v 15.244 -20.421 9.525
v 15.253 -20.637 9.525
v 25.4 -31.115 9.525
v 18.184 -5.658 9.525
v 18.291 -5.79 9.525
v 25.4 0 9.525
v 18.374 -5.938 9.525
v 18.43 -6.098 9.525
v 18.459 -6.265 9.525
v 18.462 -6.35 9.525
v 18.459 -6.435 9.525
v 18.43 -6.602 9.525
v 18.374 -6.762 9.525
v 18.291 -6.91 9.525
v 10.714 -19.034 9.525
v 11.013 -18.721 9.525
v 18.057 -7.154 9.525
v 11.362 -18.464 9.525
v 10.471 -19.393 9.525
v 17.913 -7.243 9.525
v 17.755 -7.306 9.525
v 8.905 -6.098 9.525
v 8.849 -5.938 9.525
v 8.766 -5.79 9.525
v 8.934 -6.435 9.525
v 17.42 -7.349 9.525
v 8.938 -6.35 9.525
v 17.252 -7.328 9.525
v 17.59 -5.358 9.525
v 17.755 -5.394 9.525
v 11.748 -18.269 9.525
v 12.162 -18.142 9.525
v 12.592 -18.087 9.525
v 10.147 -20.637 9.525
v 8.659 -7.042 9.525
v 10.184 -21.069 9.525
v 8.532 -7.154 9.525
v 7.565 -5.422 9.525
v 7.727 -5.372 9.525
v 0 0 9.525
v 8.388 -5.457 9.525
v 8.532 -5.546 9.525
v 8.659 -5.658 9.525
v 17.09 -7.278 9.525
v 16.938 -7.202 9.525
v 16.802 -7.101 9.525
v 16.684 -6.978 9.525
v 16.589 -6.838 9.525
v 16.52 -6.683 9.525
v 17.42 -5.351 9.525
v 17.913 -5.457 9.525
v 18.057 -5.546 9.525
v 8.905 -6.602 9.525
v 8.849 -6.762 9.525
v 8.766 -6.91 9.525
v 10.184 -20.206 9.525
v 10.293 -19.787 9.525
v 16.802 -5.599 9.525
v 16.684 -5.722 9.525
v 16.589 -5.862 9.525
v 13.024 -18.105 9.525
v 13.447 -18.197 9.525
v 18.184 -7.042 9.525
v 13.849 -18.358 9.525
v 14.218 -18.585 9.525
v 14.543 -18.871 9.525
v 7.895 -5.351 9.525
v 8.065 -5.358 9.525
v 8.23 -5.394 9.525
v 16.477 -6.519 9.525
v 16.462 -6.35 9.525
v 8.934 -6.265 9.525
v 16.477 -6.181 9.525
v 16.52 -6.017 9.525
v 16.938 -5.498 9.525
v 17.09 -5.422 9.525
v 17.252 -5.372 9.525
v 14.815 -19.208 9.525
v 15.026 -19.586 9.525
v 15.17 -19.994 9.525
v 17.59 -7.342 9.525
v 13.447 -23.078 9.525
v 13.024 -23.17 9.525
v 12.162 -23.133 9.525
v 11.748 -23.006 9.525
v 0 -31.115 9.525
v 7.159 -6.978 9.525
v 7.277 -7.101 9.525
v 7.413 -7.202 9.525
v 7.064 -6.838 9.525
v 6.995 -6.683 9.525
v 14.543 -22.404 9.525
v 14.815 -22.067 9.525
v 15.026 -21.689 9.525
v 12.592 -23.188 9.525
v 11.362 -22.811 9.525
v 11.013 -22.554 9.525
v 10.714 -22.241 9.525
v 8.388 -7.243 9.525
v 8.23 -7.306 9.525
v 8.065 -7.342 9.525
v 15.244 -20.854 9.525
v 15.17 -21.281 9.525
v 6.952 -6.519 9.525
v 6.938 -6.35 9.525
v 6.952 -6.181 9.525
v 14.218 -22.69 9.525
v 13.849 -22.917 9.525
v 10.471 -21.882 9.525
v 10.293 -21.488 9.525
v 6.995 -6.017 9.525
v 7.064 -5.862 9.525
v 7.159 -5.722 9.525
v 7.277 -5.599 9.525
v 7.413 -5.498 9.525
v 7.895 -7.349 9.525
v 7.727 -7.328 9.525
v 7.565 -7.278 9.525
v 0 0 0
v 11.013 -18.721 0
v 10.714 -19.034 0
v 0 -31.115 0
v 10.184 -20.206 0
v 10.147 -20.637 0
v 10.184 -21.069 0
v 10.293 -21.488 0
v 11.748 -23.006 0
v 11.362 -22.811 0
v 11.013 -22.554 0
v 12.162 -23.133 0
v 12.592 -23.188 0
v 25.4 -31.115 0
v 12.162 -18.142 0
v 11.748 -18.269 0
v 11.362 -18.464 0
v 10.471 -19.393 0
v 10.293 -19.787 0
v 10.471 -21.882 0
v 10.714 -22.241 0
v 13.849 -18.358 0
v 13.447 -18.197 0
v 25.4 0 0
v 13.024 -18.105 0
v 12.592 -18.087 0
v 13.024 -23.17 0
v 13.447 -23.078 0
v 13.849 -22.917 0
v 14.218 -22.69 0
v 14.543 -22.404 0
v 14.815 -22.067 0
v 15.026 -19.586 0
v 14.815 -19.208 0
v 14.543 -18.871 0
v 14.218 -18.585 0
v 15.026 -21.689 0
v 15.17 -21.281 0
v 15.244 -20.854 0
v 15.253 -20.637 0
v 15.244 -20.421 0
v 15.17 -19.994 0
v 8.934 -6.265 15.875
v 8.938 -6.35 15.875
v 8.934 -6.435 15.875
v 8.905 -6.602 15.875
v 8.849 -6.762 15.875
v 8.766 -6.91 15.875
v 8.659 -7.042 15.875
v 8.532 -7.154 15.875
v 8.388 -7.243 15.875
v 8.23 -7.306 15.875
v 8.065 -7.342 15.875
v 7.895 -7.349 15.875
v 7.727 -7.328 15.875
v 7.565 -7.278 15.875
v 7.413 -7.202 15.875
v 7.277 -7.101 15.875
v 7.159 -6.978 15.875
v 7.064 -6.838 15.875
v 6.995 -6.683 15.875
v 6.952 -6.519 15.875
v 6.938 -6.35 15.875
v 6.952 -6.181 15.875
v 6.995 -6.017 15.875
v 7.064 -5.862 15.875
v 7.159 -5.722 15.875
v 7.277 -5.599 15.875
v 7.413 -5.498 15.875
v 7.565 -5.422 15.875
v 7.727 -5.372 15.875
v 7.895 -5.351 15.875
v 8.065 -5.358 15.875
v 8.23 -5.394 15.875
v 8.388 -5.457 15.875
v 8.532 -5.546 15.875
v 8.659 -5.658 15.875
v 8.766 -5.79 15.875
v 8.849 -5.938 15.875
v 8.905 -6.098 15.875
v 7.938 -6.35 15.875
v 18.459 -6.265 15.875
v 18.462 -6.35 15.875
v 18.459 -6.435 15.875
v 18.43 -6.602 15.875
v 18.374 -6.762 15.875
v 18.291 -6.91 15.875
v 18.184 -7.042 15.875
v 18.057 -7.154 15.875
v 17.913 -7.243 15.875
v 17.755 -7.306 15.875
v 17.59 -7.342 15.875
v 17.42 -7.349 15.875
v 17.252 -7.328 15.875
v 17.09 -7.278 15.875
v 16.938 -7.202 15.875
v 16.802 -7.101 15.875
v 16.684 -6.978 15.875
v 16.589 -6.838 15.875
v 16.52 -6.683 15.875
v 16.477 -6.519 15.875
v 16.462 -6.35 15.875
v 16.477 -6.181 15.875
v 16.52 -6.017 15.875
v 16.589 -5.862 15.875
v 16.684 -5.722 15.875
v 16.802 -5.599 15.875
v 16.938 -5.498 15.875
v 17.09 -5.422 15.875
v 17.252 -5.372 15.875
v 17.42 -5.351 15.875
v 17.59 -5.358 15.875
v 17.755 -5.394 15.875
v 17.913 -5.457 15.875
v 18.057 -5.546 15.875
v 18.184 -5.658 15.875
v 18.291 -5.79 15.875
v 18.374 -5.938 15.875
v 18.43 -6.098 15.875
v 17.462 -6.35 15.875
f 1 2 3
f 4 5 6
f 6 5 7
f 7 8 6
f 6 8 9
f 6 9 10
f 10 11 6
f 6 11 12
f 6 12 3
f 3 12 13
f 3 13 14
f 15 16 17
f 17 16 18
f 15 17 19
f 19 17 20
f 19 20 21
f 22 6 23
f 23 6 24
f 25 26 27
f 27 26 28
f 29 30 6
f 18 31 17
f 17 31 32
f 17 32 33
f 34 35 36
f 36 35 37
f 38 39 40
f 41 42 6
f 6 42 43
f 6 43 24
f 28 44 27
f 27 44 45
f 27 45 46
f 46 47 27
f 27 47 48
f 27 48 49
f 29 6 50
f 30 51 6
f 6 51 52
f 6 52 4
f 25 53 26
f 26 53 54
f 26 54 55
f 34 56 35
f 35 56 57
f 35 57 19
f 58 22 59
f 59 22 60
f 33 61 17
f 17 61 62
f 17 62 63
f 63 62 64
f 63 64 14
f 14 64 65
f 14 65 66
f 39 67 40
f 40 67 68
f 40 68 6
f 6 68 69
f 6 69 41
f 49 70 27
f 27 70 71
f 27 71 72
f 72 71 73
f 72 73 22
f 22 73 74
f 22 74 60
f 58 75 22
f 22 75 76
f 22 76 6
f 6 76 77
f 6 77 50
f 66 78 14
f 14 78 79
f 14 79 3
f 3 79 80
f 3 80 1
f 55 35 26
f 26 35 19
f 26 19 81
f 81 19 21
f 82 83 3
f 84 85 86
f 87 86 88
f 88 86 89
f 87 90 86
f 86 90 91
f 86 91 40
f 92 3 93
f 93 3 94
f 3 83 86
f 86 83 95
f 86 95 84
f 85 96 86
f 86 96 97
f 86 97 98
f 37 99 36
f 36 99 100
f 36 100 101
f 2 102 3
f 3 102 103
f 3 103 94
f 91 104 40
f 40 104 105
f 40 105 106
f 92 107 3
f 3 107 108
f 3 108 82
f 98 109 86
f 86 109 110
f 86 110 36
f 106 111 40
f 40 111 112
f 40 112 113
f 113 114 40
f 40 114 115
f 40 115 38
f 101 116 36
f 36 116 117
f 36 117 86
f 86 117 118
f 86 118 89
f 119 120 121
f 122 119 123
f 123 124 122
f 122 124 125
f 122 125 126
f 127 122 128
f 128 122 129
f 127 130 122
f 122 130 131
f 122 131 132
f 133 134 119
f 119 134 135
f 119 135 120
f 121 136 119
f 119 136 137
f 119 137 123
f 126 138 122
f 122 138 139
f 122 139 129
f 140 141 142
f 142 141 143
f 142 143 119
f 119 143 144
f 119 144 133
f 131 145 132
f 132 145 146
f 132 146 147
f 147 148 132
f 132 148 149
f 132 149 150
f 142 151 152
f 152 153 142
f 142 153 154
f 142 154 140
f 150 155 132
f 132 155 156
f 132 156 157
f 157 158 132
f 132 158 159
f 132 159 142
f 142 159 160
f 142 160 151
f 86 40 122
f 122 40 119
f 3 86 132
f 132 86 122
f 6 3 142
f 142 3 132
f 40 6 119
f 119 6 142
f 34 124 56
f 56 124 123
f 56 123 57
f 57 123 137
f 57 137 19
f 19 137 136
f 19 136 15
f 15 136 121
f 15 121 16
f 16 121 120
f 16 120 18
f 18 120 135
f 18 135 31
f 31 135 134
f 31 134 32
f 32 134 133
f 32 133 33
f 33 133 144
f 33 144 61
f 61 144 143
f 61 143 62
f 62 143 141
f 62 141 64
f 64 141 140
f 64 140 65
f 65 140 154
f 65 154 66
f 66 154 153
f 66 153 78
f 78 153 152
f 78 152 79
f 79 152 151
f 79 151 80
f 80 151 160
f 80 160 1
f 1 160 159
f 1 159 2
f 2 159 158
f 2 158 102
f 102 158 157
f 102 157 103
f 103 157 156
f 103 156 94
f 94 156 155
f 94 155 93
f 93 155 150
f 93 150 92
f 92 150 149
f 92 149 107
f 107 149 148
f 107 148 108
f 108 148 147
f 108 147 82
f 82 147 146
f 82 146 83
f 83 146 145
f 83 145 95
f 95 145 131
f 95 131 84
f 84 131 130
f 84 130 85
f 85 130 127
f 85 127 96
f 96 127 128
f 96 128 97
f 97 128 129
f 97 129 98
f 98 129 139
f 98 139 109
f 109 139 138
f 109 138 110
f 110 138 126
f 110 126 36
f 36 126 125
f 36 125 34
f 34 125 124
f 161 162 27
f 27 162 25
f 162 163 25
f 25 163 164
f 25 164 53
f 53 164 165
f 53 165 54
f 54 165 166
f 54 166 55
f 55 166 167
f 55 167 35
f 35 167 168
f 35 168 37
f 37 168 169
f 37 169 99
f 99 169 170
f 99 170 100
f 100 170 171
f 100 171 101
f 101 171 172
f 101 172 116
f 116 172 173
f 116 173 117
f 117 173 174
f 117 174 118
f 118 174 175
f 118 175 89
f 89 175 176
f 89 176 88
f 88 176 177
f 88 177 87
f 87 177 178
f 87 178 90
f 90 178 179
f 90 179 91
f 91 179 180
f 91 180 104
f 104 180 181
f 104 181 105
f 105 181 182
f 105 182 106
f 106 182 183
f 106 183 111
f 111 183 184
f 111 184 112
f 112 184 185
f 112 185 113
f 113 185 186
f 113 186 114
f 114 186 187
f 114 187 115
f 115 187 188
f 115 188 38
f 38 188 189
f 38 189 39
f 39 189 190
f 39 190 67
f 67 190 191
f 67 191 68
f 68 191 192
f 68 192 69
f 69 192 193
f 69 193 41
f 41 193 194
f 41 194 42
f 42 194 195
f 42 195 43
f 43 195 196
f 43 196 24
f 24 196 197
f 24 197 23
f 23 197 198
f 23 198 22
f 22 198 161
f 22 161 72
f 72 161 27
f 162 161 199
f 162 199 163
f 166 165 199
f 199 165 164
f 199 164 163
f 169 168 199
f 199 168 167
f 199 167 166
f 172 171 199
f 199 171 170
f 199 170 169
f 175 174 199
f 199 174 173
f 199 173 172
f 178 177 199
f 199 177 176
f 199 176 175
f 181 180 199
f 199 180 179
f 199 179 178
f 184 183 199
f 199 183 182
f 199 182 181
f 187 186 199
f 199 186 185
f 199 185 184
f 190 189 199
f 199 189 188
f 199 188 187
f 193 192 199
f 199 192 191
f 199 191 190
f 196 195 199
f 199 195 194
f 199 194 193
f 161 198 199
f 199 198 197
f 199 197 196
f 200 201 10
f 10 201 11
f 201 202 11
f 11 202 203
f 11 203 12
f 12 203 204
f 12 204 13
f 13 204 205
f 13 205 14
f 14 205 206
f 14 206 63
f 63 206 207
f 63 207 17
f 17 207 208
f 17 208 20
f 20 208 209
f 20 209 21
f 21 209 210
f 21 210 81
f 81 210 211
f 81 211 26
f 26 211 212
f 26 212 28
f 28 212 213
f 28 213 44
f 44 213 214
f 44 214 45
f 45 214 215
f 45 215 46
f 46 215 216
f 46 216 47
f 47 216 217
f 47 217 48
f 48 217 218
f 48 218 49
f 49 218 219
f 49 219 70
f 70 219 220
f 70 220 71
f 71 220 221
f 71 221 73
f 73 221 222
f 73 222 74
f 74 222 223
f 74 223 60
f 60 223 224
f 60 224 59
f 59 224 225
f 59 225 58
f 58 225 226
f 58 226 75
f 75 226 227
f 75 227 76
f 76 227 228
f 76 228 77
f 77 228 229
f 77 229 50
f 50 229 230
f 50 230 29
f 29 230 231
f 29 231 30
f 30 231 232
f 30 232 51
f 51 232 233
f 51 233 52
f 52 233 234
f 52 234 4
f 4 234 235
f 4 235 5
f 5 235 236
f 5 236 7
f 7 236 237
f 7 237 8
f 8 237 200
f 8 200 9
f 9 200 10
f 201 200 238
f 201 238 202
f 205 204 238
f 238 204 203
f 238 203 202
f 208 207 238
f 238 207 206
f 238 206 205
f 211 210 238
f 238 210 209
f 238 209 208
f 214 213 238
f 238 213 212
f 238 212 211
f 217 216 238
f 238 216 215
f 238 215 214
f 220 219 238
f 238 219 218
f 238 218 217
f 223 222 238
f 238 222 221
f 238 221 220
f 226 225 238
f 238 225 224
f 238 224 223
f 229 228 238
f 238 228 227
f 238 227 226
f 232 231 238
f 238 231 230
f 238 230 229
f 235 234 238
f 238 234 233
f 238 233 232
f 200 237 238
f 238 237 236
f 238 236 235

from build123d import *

# Parameters (mm, degrees)
SKETCH1_W           = 25.4
SKETCH1_H           = 31.115
SKETCH1_R           = 2.5527
BOSS_EXTRUDE2_DEPTH = 9.525
SKETCH2_R           = 1
BOSS_EXTRUDE3_DEPTH = 6.35


with BuildPart() as part:
    # Sketch1 → Boss-Extrude2 (new body)
    with BuildSketch(Plane.XY):
        with Locations((12.7, -15.5575)):
            Rectangle(SKETCH1_W, SKETCH1_H)
        with Locations((12.7, -20.6375)):
            Circle(SKETCH1_R, mode=Mode.SUBTRACT)
    extrude(amount=BOSS_EXTRUDE2_DEPTH)

    # Sketch2 → Boss-Extrude3 (add)
    with BuildSketch(Plane.XY.offset(9.525)):
        with Locations((7.9375, -6.35)):
            Circle(SKETCH2_R)
        with Locations((17.4625, -6.35)):
            Circle(SKETCH2_R)
    extrude(amount=BOSS_EXTRUDE3_DEPTH)


solid = part.part
